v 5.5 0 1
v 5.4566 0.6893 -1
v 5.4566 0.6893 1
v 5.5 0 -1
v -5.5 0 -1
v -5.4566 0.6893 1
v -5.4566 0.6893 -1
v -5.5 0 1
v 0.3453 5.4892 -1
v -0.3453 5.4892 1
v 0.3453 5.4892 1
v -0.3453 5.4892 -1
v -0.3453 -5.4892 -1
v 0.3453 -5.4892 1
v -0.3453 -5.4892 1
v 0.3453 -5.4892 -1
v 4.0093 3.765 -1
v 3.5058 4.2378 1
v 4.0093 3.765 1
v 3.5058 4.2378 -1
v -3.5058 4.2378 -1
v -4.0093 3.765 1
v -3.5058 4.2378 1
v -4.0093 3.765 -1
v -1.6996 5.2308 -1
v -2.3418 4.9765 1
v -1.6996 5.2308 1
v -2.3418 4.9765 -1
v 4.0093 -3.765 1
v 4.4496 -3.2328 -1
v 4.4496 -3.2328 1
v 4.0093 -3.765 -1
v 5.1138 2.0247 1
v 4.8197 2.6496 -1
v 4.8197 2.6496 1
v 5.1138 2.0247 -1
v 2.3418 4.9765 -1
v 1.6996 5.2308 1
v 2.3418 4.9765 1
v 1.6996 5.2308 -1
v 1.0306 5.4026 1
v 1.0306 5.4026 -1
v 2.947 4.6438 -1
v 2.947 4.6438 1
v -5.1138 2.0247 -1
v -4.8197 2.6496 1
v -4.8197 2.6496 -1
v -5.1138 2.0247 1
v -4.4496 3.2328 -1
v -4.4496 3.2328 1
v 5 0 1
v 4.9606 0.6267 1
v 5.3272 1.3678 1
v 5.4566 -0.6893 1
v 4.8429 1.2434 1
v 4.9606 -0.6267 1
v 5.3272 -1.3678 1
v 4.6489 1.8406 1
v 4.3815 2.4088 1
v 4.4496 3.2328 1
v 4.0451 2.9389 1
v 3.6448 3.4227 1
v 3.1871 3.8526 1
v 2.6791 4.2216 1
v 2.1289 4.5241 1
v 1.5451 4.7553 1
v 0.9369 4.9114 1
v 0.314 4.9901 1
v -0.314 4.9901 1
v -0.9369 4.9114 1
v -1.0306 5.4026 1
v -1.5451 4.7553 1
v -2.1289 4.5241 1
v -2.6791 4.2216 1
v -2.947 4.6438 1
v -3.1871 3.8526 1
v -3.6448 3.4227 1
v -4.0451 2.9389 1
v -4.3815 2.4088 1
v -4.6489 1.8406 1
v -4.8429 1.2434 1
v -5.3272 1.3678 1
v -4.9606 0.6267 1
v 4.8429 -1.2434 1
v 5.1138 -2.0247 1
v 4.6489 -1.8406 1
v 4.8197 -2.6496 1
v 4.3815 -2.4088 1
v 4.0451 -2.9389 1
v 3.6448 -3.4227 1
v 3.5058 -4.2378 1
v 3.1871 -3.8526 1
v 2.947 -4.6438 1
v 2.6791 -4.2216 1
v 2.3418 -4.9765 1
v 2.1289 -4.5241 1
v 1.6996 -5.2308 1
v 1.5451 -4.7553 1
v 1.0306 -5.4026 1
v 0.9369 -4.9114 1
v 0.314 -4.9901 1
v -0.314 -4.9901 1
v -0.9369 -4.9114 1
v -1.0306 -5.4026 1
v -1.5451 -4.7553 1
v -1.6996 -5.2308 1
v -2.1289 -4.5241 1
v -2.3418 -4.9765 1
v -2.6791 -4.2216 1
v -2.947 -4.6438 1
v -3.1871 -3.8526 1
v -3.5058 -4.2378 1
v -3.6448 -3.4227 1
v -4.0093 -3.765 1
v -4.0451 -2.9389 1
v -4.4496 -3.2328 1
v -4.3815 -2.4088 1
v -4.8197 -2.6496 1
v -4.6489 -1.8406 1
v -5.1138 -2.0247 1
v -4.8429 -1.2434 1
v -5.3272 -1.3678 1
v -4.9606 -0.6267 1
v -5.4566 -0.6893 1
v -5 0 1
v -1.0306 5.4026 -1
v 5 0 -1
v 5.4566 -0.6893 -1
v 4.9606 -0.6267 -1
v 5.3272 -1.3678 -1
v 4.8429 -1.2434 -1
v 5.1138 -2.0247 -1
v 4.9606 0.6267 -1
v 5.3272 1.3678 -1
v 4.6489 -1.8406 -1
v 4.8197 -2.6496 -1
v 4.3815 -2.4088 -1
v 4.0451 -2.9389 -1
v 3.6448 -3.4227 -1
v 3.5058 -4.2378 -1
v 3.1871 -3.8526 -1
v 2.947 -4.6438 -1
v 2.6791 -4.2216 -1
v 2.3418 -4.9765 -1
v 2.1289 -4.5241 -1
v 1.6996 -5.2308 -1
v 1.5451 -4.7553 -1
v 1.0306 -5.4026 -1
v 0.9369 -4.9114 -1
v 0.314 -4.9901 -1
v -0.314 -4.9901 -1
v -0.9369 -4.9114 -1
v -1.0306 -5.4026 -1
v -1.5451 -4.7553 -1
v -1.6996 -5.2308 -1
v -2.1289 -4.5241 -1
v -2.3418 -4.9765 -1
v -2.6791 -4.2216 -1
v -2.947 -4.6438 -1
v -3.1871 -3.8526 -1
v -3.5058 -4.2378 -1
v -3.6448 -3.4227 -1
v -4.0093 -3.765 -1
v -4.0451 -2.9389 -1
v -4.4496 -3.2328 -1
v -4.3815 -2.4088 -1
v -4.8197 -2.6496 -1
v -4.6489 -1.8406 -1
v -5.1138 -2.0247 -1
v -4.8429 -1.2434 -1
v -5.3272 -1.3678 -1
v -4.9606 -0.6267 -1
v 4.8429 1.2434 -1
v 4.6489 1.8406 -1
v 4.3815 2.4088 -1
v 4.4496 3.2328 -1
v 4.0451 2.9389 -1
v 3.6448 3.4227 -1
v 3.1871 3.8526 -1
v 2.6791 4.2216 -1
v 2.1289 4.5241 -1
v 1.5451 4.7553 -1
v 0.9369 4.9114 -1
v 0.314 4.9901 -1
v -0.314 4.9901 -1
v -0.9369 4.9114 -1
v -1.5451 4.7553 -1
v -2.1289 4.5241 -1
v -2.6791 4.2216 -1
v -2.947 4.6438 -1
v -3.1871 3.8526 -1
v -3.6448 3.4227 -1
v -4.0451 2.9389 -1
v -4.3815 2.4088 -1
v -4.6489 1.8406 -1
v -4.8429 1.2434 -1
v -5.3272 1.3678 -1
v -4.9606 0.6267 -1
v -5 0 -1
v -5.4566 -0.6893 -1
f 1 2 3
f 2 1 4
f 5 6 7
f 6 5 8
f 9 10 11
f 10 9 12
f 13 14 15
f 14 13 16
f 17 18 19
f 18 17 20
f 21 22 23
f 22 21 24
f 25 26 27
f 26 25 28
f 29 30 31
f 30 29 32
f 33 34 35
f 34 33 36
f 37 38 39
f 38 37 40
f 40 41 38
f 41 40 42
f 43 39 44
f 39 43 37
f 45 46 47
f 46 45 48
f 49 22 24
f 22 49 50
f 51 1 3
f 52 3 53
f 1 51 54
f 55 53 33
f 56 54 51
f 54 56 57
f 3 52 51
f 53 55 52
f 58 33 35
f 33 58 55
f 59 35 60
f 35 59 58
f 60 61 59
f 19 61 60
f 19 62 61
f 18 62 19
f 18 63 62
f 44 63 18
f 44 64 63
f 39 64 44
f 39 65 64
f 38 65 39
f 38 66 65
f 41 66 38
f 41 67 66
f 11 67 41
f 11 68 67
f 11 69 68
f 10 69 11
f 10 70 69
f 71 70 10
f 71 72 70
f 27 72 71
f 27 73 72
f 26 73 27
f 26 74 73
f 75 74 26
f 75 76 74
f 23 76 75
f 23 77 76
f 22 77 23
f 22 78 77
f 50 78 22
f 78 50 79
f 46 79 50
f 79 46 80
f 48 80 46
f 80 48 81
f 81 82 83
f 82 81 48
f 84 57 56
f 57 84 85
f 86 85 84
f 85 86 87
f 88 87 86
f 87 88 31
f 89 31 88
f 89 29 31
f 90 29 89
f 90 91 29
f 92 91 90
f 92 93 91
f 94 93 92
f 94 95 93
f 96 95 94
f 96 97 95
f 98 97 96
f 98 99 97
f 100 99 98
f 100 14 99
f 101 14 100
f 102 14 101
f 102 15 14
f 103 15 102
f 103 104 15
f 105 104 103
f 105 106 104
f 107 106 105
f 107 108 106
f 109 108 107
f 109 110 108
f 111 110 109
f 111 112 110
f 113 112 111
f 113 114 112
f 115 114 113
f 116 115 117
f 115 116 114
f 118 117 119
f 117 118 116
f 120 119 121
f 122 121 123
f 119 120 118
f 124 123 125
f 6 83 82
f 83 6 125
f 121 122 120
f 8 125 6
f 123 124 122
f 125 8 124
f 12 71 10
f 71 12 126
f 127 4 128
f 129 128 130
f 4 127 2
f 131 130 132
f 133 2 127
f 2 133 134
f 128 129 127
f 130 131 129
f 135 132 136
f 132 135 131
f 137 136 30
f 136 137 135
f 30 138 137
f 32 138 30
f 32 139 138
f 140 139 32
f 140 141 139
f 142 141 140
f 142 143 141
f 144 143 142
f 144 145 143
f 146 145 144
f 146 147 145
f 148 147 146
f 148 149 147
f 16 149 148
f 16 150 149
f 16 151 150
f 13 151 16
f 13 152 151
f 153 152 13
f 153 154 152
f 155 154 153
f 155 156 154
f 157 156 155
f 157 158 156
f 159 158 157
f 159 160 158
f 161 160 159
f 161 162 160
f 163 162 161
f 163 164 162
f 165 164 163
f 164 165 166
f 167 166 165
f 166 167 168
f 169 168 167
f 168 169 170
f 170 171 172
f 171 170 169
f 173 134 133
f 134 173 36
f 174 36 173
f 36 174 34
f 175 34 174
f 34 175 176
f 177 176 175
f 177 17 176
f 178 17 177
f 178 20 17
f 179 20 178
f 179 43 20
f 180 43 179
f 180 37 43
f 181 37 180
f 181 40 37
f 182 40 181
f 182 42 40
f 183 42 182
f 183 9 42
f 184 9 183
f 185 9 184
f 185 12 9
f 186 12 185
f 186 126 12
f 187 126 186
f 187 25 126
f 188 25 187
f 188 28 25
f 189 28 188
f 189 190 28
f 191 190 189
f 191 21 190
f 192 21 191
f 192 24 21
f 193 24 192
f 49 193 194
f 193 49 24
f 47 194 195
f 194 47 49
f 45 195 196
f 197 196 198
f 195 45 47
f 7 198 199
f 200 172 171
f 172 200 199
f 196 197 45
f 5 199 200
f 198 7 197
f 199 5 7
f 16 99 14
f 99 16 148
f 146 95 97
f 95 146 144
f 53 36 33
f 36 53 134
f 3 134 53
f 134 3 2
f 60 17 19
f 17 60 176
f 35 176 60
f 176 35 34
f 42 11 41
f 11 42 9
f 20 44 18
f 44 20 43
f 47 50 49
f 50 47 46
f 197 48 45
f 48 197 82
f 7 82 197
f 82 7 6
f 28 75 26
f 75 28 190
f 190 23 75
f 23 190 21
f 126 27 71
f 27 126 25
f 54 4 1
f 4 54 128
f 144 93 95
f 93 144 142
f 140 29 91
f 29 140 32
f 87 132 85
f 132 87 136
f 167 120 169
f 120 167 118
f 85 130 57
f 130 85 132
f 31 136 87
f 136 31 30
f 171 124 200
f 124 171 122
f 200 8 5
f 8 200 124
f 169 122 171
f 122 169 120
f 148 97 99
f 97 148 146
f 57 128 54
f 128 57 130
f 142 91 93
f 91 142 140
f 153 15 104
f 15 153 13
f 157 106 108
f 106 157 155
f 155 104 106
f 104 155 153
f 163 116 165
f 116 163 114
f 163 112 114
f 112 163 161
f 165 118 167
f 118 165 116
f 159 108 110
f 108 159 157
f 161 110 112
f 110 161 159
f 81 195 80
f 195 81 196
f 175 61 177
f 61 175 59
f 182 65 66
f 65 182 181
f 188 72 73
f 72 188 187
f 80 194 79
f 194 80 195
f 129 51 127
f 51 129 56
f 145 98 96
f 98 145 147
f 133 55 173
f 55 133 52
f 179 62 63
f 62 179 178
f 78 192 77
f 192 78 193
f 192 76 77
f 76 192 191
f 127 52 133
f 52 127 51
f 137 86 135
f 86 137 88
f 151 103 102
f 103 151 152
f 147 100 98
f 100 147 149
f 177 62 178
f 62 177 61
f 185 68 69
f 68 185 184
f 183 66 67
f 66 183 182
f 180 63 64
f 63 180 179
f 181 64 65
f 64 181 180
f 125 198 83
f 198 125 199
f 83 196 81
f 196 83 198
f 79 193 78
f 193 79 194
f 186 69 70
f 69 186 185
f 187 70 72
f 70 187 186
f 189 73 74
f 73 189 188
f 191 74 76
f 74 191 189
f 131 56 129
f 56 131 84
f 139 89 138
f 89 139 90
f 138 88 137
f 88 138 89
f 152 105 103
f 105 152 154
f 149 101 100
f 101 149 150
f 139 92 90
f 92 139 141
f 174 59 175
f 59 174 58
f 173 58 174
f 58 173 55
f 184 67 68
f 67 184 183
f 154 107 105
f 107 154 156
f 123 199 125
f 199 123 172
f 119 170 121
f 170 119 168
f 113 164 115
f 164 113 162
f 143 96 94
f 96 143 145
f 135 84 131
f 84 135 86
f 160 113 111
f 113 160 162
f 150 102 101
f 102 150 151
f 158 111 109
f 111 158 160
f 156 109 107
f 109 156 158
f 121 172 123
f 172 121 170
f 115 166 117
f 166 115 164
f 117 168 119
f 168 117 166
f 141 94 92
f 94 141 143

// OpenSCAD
$fn = 50;


difference() {
	union() {
		translate(v = [0, 0, -1.0000000000]) {
			cylinder(h = 2, r = 5.5000000000);
		}
	}
	union() {
		translate(v = [0, 0, -100.0000000000]) {
			cylinder(h = 200, r = 5);
		}
	}
}
